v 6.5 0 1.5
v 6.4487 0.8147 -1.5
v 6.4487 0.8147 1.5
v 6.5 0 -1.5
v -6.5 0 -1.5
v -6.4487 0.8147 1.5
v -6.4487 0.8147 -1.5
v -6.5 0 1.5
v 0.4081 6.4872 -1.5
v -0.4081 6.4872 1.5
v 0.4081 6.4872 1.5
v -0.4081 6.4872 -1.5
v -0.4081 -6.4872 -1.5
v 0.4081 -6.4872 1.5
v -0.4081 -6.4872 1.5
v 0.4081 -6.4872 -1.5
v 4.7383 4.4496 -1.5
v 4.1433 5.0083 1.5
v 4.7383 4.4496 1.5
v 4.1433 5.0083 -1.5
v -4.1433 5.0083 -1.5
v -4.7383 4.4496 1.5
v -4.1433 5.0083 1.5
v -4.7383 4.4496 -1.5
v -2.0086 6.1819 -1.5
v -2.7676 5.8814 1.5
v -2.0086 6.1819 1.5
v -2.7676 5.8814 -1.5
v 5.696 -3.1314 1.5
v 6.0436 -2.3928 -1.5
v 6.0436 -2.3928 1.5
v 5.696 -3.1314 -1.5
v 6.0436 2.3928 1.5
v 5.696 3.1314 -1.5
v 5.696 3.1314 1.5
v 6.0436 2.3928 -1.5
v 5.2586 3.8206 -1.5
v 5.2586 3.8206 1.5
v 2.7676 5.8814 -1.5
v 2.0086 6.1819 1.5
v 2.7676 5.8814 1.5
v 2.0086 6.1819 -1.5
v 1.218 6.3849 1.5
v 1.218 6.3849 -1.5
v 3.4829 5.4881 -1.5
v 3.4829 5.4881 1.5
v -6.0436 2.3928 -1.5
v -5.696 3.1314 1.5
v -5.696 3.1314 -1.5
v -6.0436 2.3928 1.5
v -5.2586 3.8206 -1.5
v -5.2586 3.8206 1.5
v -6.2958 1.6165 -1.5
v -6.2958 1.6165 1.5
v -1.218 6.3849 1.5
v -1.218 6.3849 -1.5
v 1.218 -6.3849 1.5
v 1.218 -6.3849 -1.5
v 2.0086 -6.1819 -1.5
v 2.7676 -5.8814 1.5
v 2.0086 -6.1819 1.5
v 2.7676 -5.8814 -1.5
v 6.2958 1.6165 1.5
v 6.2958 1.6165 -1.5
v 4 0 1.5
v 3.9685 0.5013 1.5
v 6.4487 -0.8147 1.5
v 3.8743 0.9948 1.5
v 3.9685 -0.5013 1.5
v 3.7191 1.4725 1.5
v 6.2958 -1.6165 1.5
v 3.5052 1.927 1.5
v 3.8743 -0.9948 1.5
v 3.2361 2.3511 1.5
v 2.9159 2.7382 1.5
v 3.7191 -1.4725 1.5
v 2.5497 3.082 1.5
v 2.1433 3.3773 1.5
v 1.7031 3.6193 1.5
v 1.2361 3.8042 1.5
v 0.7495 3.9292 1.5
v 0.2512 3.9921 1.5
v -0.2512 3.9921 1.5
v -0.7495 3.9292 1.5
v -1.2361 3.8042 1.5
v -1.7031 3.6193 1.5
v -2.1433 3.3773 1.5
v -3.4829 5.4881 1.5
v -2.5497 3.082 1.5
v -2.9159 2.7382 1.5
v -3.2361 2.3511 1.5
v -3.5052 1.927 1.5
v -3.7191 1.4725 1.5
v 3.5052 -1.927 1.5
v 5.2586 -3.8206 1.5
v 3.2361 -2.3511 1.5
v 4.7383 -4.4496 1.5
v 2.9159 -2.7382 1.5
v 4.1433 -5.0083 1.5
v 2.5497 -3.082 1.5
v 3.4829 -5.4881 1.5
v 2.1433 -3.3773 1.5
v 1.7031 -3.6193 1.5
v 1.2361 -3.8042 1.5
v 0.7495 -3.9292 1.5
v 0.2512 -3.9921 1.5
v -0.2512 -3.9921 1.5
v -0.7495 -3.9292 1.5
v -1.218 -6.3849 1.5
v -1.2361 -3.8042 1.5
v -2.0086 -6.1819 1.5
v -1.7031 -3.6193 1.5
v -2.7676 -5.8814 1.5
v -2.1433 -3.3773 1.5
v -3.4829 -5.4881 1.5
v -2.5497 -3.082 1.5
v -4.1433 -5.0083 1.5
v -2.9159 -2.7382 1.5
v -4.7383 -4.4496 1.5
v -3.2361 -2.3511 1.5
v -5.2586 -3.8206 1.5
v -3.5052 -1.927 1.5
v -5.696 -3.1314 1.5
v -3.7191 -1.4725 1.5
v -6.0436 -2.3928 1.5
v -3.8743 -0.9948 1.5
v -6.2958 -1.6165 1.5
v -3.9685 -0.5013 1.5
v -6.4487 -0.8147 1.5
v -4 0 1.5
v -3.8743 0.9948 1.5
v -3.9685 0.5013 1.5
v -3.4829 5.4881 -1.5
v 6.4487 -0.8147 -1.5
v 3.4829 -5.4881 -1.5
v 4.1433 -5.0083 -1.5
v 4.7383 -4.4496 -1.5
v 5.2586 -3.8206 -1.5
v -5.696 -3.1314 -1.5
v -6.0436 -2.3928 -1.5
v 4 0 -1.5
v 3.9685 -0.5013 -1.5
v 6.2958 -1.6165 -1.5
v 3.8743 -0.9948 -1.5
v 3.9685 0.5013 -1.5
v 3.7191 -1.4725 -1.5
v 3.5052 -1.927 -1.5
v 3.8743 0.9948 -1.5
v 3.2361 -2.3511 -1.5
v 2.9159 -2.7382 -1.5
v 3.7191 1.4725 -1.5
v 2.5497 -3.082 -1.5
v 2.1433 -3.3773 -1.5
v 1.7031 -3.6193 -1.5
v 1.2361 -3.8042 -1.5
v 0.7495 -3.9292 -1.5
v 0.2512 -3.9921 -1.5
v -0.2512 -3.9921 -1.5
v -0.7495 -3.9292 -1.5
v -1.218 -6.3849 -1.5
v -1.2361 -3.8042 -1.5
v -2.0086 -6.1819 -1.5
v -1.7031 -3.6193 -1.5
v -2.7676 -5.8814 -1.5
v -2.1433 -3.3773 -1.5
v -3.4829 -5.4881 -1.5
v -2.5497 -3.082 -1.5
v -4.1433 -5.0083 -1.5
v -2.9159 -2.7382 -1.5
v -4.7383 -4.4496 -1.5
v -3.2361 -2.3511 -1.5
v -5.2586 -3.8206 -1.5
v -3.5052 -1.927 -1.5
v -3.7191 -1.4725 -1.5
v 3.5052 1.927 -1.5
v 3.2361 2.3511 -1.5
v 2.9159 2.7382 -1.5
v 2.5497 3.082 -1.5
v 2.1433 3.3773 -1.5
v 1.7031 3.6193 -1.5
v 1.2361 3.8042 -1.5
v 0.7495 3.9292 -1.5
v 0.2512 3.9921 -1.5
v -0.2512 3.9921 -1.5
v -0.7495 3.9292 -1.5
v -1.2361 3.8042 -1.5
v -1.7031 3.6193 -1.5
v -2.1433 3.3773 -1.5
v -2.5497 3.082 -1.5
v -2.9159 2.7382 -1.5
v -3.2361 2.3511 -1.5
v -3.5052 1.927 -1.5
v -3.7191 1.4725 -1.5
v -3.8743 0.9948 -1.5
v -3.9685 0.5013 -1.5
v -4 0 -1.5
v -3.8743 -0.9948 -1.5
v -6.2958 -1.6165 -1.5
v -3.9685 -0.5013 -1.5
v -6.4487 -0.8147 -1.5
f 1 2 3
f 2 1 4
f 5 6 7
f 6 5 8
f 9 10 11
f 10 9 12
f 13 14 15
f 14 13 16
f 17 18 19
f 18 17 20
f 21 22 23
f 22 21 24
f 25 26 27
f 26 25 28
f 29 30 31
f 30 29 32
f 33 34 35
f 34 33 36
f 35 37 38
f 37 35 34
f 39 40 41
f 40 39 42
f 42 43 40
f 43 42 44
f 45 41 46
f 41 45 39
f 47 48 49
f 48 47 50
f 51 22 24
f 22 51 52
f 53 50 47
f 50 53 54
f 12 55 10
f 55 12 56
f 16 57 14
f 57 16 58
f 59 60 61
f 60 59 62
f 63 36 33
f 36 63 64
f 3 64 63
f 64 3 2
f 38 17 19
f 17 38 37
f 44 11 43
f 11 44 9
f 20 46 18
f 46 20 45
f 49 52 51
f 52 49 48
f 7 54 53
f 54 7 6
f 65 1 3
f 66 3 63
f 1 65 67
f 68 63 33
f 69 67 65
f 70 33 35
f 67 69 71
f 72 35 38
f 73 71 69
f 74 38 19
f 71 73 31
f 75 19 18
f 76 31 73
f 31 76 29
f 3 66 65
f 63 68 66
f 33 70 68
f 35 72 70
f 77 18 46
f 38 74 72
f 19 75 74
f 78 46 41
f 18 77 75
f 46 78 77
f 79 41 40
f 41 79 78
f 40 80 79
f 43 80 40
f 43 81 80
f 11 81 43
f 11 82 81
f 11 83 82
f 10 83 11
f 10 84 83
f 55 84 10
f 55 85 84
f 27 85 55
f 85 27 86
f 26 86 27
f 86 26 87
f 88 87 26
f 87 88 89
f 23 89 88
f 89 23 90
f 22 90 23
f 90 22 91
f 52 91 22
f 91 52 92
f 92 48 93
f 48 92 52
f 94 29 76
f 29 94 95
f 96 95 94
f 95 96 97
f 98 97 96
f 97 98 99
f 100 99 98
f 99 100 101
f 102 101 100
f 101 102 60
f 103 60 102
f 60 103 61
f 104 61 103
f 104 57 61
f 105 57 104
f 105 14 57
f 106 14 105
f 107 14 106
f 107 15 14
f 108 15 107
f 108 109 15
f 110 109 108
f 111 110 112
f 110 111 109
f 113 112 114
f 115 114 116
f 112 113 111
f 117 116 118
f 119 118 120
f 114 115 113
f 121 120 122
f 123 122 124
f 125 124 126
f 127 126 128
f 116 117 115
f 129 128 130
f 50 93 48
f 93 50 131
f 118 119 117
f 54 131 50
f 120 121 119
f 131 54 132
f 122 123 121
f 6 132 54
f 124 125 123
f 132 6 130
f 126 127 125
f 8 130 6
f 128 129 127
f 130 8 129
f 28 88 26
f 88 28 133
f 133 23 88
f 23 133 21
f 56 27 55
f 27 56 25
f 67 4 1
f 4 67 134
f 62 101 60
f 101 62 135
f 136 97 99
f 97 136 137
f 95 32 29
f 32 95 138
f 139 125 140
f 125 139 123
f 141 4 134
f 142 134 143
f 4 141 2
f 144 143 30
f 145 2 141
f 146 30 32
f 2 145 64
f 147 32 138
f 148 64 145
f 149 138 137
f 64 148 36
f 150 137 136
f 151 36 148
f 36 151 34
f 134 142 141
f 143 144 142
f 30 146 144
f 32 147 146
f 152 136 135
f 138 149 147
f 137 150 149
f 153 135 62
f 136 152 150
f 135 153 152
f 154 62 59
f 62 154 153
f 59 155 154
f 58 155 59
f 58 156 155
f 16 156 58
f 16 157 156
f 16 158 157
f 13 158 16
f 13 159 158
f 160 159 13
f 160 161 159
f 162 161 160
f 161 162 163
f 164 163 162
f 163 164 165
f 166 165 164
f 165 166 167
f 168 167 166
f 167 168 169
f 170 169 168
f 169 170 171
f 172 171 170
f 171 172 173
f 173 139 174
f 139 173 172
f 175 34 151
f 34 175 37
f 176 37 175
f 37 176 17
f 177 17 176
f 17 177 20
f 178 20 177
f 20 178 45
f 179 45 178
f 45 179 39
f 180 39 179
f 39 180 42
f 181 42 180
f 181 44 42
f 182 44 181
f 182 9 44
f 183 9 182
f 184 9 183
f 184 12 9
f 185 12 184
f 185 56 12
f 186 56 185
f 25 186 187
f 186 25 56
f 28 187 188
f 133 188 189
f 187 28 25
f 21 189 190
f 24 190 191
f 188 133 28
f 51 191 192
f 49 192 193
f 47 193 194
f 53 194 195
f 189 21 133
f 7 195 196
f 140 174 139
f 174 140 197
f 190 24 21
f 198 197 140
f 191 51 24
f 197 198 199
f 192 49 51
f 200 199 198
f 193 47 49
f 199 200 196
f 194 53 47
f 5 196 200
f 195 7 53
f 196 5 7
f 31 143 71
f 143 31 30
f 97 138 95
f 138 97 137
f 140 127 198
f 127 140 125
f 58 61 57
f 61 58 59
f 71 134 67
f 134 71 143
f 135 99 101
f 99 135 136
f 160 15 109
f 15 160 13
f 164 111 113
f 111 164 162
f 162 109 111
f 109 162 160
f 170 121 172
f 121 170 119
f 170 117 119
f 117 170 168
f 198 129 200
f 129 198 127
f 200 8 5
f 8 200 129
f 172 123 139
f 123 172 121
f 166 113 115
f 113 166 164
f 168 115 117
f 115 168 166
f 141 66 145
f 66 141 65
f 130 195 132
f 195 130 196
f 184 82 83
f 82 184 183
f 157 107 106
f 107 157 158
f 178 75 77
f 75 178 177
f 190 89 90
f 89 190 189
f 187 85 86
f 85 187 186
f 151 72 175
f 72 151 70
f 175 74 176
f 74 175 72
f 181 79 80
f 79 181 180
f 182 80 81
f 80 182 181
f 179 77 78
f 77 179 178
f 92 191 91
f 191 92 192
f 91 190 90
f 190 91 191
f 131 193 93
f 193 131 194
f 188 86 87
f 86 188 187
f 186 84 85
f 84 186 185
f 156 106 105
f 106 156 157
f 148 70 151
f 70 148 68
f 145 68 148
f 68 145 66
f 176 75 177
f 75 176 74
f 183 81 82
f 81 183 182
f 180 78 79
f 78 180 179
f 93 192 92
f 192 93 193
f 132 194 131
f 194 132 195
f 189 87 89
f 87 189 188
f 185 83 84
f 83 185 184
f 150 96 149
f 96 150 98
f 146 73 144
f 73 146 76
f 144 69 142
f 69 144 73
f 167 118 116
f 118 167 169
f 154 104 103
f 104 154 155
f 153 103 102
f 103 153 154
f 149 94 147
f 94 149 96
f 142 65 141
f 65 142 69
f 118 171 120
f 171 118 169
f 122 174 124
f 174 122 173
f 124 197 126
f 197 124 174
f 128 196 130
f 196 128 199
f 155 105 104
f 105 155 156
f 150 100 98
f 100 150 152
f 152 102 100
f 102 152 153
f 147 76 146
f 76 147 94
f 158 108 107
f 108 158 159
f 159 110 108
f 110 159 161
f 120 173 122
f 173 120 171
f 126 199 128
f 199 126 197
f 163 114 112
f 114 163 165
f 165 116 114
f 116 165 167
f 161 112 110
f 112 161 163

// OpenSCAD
$fn = 50;


difference() {
	union() {
		translate(v = [0, 0, -1.5000000000]) {
			cylinder(h = 3, r = 6.5000000000);
		}
	}
	union() {
		translate(v = [0, 0, -100.0000000000]) {
			cylinder(h = 200, r = 4.0000000000);
		}
	}
}
